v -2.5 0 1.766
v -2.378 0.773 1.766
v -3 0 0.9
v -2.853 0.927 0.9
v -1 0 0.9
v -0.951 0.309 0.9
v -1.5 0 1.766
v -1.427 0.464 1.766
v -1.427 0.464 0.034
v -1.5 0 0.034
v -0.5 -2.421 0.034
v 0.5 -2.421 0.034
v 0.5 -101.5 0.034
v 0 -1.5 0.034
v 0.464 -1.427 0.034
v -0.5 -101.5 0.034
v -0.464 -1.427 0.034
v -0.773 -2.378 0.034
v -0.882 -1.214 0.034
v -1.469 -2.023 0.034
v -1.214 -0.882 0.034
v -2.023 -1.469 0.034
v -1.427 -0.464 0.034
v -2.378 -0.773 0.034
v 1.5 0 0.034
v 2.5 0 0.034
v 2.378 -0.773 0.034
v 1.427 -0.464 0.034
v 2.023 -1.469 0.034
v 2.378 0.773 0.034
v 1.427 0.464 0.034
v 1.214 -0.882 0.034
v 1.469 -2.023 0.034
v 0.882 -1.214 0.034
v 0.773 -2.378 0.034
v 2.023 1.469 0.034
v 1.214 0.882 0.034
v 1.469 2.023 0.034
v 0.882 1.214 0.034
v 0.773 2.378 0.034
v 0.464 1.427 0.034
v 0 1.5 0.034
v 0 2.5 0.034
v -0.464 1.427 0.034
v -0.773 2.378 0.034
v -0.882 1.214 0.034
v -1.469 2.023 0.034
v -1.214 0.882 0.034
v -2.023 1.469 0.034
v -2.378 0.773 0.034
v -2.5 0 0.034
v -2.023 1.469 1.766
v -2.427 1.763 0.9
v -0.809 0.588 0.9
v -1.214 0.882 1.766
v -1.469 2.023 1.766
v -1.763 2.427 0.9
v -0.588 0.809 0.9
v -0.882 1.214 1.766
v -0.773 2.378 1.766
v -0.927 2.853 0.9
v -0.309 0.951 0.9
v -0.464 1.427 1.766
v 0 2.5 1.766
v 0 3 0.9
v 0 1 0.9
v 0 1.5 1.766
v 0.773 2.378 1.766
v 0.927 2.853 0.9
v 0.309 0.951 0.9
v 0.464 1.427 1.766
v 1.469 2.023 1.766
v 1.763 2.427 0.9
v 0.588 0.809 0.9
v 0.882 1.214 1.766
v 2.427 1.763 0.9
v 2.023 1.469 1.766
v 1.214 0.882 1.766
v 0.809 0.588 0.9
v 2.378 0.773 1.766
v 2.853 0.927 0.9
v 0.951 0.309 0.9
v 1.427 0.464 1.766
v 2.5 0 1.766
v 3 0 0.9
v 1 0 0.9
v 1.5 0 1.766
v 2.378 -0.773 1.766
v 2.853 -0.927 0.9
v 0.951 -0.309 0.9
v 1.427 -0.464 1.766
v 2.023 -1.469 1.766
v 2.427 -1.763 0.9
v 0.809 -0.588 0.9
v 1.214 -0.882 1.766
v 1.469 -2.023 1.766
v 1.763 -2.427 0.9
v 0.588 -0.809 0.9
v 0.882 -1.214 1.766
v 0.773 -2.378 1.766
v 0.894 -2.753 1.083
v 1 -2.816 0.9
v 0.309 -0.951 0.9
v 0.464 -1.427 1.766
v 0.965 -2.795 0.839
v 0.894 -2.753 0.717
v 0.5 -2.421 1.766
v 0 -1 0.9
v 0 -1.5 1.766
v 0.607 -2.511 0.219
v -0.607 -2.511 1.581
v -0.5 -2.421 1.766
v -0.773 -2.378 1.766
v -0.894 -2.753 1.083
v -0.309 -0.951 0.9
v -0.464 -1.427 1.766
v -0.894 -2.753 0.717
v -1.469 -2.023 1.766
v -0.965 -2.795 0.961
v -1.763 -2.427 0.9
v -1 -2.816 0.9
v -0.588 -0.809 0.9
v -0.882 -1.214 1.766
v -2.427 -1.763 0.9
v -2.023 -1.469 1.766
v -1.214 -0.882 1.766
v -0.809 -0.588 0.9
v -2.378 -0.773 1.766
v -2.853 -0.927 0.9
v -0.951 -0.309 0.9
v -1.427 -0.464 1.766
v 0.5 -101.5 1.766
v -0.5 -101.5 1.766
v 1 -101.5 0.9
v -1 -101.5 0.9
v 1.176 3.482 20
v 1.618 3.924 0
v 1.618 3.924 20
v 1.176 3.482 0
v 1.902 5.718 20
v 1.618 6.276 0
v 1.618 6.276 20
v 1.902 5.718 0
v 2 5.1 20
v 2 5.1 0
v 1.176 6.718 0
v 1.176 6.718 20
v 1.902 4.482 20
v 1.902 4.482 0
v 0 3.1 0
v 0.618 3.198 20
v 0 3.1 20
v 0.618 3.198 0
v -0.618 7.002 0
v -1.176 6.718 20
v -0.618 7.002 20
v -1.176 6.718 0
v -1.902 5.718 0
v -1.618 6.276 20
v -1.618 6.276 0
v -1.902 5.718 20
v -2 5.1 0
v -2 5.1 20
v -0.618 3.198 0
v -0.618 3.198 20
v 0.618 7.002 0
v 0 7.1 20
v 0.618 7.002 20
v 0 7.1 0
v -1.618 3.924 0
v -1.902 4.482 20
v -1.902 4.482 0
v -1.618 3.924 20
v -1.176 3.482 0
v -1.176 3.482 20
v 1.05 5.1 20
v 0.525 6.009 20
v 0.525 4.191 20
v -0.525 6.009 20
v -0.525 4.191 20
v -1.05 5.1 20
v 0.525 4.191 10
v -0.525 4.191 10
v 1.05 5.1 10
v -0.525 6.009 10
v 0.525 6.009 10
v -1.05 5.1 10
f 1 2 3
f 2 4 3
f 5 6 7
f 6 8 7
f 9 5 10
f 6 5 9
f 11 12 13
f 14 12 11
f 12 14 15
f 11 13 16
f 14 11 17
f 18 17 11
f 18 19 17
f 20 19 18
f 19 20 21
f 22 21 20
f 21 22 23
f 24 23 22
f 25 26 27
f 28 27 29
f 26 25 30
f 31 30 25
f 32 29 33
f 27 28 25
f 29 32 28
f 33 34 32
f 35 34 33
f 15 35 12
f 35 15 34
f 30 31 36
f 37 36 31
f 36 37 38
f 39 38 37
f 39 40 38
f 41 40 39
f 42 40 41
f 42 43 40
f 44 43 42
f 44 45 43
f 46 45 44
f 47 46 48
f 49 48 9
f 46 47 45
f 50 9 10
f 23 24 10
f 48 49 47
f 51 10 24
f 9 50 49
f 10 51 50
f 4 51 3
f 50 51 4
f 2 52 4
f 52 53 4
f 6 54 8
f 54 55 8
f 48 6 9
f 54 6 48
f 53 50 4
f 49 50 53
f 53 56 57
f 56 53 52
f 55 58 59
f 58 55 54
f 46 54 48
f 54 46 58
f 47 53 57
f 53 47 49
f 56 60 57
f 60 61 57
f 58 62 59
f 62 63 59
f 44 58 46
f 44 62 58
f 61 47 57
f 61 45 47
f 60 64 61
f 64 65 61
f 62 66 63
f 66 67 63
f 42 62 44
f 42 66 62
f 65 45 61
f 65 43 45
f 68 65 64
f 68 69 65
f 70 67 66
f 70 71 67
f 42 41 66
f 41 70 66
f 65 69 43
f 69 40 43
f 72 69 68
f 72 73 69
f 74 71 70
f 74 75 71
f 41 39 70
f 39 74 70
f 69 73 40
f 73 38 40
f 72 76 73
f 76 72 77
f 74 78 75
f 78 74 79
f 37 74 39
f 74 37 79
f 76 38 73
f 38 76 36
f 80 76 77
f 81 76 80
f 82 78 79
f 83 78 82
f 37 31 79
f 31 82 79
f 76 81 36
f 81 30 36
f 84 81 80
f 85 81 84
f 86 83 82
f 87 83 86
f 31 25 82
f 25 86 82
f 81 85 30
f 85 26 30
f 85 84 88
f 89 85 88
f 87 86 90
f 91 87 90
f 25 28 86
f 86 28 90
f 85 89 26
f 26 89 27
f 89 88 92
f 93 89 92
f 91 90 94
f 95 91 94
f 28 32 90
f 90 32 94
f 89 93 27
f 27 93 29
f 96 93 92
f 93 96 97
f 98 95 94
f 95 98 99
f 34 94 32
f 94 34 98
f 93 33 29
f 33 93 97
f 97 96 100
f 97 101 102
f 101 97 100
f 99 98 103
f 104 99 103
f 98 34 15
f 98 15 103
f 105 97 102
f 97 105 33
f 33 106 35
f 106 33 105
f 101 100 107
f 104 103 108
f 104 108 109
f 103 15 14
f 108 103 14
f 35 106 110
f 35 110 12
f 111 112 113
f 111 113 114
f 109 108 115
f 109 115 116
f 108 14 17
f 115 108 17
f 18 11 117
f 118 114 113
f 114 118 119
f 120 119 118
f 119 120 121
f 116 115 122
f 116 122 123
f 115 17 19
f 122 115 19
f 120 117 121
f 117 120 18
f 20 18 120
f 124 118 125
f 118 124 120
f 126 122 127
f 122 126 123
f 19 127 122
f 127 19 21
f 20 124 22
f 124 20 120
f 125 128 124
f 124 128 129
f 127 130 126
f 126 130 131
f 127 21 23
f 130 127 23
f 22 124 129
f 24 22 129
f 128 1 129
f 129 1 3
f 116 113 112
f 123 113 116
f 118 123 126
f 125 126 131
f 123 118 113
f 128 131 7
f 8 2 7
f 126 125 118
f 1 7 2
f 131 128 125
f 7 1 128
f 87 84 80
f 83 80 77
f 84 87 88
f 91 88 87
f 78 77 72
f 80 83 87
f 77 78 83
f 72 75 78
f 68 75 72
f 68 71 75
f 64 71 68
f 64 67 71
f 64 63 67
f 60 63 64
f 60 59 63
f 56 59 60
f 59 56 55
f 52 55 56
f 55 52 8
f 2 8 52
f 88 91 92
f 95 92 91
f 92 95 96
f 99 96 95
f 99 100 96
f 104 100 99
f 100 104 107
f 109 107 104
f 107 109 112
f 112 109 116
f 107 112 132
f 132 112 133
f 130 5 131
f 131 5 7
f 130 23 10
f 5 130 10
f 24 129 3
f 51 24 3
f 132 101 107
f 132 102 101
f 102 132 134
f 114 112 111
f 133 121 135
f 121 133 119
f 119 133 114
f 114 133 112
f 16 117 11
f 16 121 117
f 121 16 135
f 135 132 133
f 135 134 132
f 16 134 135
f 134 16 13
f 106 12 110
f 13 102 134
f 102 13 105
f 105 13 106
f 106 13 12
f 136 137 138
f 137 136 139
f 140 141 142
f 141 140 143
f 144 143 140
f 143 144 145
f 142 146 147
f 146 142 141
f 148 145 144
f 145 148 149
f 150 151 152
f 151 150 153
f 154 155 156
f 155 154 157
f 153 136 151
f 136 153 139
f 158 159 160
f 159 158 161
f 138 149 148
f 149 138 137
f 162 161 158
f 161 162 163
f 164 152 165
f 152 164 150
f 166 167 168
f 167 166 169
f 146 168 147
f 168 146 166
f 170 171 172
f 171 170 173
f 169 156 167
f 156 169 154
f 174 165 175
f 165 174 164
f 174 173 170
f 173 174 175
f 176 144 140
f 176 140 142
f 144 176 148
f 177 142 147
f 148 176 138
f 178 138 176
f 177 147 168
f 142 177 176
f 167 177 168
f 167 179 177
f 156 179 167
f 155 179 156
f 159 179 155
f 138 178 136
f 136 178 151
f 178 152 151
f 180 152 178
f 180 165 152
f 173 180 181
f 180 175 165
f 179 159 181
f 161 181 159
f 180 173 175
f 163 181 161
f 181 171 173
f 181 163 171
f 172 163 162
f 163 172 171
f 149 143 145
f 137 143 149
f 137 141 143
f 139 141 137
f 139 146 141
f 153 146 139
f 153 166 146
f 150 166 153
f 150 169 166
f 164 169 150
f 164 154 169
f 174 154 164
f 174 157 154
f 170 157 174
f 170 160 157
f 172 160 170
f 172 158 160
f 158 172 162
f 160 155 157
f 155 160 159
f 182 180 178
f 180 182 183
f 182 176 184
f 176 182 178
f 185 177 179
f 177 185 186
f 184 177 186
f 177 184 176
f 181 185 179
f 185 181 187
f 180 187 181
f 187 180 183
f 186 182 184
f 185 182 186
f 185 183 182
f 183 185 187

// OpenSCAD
module bottom() {
    difference() {
        cylinder(d=4, h=20, $fn=20);
        translate([0,0,10]) cylinder(d=2.1, h=10, $fn=6);
    }
}


module middle() {
    translate([0, -1.5, 0]) 
     rotate([90, 0, 0]) 
     cylinder(d=2, h=100, $fn=6);
}

module top() {
  rotate_extrude(convexity=5, $fn=20) 
    translate([2, 0, 0]) 
    circle(d=2, $fn=6);
}

translate([0, 0, 0.9]) {
    top();
    middle();
}
translate([0, 5.1, 0]) bottom();
